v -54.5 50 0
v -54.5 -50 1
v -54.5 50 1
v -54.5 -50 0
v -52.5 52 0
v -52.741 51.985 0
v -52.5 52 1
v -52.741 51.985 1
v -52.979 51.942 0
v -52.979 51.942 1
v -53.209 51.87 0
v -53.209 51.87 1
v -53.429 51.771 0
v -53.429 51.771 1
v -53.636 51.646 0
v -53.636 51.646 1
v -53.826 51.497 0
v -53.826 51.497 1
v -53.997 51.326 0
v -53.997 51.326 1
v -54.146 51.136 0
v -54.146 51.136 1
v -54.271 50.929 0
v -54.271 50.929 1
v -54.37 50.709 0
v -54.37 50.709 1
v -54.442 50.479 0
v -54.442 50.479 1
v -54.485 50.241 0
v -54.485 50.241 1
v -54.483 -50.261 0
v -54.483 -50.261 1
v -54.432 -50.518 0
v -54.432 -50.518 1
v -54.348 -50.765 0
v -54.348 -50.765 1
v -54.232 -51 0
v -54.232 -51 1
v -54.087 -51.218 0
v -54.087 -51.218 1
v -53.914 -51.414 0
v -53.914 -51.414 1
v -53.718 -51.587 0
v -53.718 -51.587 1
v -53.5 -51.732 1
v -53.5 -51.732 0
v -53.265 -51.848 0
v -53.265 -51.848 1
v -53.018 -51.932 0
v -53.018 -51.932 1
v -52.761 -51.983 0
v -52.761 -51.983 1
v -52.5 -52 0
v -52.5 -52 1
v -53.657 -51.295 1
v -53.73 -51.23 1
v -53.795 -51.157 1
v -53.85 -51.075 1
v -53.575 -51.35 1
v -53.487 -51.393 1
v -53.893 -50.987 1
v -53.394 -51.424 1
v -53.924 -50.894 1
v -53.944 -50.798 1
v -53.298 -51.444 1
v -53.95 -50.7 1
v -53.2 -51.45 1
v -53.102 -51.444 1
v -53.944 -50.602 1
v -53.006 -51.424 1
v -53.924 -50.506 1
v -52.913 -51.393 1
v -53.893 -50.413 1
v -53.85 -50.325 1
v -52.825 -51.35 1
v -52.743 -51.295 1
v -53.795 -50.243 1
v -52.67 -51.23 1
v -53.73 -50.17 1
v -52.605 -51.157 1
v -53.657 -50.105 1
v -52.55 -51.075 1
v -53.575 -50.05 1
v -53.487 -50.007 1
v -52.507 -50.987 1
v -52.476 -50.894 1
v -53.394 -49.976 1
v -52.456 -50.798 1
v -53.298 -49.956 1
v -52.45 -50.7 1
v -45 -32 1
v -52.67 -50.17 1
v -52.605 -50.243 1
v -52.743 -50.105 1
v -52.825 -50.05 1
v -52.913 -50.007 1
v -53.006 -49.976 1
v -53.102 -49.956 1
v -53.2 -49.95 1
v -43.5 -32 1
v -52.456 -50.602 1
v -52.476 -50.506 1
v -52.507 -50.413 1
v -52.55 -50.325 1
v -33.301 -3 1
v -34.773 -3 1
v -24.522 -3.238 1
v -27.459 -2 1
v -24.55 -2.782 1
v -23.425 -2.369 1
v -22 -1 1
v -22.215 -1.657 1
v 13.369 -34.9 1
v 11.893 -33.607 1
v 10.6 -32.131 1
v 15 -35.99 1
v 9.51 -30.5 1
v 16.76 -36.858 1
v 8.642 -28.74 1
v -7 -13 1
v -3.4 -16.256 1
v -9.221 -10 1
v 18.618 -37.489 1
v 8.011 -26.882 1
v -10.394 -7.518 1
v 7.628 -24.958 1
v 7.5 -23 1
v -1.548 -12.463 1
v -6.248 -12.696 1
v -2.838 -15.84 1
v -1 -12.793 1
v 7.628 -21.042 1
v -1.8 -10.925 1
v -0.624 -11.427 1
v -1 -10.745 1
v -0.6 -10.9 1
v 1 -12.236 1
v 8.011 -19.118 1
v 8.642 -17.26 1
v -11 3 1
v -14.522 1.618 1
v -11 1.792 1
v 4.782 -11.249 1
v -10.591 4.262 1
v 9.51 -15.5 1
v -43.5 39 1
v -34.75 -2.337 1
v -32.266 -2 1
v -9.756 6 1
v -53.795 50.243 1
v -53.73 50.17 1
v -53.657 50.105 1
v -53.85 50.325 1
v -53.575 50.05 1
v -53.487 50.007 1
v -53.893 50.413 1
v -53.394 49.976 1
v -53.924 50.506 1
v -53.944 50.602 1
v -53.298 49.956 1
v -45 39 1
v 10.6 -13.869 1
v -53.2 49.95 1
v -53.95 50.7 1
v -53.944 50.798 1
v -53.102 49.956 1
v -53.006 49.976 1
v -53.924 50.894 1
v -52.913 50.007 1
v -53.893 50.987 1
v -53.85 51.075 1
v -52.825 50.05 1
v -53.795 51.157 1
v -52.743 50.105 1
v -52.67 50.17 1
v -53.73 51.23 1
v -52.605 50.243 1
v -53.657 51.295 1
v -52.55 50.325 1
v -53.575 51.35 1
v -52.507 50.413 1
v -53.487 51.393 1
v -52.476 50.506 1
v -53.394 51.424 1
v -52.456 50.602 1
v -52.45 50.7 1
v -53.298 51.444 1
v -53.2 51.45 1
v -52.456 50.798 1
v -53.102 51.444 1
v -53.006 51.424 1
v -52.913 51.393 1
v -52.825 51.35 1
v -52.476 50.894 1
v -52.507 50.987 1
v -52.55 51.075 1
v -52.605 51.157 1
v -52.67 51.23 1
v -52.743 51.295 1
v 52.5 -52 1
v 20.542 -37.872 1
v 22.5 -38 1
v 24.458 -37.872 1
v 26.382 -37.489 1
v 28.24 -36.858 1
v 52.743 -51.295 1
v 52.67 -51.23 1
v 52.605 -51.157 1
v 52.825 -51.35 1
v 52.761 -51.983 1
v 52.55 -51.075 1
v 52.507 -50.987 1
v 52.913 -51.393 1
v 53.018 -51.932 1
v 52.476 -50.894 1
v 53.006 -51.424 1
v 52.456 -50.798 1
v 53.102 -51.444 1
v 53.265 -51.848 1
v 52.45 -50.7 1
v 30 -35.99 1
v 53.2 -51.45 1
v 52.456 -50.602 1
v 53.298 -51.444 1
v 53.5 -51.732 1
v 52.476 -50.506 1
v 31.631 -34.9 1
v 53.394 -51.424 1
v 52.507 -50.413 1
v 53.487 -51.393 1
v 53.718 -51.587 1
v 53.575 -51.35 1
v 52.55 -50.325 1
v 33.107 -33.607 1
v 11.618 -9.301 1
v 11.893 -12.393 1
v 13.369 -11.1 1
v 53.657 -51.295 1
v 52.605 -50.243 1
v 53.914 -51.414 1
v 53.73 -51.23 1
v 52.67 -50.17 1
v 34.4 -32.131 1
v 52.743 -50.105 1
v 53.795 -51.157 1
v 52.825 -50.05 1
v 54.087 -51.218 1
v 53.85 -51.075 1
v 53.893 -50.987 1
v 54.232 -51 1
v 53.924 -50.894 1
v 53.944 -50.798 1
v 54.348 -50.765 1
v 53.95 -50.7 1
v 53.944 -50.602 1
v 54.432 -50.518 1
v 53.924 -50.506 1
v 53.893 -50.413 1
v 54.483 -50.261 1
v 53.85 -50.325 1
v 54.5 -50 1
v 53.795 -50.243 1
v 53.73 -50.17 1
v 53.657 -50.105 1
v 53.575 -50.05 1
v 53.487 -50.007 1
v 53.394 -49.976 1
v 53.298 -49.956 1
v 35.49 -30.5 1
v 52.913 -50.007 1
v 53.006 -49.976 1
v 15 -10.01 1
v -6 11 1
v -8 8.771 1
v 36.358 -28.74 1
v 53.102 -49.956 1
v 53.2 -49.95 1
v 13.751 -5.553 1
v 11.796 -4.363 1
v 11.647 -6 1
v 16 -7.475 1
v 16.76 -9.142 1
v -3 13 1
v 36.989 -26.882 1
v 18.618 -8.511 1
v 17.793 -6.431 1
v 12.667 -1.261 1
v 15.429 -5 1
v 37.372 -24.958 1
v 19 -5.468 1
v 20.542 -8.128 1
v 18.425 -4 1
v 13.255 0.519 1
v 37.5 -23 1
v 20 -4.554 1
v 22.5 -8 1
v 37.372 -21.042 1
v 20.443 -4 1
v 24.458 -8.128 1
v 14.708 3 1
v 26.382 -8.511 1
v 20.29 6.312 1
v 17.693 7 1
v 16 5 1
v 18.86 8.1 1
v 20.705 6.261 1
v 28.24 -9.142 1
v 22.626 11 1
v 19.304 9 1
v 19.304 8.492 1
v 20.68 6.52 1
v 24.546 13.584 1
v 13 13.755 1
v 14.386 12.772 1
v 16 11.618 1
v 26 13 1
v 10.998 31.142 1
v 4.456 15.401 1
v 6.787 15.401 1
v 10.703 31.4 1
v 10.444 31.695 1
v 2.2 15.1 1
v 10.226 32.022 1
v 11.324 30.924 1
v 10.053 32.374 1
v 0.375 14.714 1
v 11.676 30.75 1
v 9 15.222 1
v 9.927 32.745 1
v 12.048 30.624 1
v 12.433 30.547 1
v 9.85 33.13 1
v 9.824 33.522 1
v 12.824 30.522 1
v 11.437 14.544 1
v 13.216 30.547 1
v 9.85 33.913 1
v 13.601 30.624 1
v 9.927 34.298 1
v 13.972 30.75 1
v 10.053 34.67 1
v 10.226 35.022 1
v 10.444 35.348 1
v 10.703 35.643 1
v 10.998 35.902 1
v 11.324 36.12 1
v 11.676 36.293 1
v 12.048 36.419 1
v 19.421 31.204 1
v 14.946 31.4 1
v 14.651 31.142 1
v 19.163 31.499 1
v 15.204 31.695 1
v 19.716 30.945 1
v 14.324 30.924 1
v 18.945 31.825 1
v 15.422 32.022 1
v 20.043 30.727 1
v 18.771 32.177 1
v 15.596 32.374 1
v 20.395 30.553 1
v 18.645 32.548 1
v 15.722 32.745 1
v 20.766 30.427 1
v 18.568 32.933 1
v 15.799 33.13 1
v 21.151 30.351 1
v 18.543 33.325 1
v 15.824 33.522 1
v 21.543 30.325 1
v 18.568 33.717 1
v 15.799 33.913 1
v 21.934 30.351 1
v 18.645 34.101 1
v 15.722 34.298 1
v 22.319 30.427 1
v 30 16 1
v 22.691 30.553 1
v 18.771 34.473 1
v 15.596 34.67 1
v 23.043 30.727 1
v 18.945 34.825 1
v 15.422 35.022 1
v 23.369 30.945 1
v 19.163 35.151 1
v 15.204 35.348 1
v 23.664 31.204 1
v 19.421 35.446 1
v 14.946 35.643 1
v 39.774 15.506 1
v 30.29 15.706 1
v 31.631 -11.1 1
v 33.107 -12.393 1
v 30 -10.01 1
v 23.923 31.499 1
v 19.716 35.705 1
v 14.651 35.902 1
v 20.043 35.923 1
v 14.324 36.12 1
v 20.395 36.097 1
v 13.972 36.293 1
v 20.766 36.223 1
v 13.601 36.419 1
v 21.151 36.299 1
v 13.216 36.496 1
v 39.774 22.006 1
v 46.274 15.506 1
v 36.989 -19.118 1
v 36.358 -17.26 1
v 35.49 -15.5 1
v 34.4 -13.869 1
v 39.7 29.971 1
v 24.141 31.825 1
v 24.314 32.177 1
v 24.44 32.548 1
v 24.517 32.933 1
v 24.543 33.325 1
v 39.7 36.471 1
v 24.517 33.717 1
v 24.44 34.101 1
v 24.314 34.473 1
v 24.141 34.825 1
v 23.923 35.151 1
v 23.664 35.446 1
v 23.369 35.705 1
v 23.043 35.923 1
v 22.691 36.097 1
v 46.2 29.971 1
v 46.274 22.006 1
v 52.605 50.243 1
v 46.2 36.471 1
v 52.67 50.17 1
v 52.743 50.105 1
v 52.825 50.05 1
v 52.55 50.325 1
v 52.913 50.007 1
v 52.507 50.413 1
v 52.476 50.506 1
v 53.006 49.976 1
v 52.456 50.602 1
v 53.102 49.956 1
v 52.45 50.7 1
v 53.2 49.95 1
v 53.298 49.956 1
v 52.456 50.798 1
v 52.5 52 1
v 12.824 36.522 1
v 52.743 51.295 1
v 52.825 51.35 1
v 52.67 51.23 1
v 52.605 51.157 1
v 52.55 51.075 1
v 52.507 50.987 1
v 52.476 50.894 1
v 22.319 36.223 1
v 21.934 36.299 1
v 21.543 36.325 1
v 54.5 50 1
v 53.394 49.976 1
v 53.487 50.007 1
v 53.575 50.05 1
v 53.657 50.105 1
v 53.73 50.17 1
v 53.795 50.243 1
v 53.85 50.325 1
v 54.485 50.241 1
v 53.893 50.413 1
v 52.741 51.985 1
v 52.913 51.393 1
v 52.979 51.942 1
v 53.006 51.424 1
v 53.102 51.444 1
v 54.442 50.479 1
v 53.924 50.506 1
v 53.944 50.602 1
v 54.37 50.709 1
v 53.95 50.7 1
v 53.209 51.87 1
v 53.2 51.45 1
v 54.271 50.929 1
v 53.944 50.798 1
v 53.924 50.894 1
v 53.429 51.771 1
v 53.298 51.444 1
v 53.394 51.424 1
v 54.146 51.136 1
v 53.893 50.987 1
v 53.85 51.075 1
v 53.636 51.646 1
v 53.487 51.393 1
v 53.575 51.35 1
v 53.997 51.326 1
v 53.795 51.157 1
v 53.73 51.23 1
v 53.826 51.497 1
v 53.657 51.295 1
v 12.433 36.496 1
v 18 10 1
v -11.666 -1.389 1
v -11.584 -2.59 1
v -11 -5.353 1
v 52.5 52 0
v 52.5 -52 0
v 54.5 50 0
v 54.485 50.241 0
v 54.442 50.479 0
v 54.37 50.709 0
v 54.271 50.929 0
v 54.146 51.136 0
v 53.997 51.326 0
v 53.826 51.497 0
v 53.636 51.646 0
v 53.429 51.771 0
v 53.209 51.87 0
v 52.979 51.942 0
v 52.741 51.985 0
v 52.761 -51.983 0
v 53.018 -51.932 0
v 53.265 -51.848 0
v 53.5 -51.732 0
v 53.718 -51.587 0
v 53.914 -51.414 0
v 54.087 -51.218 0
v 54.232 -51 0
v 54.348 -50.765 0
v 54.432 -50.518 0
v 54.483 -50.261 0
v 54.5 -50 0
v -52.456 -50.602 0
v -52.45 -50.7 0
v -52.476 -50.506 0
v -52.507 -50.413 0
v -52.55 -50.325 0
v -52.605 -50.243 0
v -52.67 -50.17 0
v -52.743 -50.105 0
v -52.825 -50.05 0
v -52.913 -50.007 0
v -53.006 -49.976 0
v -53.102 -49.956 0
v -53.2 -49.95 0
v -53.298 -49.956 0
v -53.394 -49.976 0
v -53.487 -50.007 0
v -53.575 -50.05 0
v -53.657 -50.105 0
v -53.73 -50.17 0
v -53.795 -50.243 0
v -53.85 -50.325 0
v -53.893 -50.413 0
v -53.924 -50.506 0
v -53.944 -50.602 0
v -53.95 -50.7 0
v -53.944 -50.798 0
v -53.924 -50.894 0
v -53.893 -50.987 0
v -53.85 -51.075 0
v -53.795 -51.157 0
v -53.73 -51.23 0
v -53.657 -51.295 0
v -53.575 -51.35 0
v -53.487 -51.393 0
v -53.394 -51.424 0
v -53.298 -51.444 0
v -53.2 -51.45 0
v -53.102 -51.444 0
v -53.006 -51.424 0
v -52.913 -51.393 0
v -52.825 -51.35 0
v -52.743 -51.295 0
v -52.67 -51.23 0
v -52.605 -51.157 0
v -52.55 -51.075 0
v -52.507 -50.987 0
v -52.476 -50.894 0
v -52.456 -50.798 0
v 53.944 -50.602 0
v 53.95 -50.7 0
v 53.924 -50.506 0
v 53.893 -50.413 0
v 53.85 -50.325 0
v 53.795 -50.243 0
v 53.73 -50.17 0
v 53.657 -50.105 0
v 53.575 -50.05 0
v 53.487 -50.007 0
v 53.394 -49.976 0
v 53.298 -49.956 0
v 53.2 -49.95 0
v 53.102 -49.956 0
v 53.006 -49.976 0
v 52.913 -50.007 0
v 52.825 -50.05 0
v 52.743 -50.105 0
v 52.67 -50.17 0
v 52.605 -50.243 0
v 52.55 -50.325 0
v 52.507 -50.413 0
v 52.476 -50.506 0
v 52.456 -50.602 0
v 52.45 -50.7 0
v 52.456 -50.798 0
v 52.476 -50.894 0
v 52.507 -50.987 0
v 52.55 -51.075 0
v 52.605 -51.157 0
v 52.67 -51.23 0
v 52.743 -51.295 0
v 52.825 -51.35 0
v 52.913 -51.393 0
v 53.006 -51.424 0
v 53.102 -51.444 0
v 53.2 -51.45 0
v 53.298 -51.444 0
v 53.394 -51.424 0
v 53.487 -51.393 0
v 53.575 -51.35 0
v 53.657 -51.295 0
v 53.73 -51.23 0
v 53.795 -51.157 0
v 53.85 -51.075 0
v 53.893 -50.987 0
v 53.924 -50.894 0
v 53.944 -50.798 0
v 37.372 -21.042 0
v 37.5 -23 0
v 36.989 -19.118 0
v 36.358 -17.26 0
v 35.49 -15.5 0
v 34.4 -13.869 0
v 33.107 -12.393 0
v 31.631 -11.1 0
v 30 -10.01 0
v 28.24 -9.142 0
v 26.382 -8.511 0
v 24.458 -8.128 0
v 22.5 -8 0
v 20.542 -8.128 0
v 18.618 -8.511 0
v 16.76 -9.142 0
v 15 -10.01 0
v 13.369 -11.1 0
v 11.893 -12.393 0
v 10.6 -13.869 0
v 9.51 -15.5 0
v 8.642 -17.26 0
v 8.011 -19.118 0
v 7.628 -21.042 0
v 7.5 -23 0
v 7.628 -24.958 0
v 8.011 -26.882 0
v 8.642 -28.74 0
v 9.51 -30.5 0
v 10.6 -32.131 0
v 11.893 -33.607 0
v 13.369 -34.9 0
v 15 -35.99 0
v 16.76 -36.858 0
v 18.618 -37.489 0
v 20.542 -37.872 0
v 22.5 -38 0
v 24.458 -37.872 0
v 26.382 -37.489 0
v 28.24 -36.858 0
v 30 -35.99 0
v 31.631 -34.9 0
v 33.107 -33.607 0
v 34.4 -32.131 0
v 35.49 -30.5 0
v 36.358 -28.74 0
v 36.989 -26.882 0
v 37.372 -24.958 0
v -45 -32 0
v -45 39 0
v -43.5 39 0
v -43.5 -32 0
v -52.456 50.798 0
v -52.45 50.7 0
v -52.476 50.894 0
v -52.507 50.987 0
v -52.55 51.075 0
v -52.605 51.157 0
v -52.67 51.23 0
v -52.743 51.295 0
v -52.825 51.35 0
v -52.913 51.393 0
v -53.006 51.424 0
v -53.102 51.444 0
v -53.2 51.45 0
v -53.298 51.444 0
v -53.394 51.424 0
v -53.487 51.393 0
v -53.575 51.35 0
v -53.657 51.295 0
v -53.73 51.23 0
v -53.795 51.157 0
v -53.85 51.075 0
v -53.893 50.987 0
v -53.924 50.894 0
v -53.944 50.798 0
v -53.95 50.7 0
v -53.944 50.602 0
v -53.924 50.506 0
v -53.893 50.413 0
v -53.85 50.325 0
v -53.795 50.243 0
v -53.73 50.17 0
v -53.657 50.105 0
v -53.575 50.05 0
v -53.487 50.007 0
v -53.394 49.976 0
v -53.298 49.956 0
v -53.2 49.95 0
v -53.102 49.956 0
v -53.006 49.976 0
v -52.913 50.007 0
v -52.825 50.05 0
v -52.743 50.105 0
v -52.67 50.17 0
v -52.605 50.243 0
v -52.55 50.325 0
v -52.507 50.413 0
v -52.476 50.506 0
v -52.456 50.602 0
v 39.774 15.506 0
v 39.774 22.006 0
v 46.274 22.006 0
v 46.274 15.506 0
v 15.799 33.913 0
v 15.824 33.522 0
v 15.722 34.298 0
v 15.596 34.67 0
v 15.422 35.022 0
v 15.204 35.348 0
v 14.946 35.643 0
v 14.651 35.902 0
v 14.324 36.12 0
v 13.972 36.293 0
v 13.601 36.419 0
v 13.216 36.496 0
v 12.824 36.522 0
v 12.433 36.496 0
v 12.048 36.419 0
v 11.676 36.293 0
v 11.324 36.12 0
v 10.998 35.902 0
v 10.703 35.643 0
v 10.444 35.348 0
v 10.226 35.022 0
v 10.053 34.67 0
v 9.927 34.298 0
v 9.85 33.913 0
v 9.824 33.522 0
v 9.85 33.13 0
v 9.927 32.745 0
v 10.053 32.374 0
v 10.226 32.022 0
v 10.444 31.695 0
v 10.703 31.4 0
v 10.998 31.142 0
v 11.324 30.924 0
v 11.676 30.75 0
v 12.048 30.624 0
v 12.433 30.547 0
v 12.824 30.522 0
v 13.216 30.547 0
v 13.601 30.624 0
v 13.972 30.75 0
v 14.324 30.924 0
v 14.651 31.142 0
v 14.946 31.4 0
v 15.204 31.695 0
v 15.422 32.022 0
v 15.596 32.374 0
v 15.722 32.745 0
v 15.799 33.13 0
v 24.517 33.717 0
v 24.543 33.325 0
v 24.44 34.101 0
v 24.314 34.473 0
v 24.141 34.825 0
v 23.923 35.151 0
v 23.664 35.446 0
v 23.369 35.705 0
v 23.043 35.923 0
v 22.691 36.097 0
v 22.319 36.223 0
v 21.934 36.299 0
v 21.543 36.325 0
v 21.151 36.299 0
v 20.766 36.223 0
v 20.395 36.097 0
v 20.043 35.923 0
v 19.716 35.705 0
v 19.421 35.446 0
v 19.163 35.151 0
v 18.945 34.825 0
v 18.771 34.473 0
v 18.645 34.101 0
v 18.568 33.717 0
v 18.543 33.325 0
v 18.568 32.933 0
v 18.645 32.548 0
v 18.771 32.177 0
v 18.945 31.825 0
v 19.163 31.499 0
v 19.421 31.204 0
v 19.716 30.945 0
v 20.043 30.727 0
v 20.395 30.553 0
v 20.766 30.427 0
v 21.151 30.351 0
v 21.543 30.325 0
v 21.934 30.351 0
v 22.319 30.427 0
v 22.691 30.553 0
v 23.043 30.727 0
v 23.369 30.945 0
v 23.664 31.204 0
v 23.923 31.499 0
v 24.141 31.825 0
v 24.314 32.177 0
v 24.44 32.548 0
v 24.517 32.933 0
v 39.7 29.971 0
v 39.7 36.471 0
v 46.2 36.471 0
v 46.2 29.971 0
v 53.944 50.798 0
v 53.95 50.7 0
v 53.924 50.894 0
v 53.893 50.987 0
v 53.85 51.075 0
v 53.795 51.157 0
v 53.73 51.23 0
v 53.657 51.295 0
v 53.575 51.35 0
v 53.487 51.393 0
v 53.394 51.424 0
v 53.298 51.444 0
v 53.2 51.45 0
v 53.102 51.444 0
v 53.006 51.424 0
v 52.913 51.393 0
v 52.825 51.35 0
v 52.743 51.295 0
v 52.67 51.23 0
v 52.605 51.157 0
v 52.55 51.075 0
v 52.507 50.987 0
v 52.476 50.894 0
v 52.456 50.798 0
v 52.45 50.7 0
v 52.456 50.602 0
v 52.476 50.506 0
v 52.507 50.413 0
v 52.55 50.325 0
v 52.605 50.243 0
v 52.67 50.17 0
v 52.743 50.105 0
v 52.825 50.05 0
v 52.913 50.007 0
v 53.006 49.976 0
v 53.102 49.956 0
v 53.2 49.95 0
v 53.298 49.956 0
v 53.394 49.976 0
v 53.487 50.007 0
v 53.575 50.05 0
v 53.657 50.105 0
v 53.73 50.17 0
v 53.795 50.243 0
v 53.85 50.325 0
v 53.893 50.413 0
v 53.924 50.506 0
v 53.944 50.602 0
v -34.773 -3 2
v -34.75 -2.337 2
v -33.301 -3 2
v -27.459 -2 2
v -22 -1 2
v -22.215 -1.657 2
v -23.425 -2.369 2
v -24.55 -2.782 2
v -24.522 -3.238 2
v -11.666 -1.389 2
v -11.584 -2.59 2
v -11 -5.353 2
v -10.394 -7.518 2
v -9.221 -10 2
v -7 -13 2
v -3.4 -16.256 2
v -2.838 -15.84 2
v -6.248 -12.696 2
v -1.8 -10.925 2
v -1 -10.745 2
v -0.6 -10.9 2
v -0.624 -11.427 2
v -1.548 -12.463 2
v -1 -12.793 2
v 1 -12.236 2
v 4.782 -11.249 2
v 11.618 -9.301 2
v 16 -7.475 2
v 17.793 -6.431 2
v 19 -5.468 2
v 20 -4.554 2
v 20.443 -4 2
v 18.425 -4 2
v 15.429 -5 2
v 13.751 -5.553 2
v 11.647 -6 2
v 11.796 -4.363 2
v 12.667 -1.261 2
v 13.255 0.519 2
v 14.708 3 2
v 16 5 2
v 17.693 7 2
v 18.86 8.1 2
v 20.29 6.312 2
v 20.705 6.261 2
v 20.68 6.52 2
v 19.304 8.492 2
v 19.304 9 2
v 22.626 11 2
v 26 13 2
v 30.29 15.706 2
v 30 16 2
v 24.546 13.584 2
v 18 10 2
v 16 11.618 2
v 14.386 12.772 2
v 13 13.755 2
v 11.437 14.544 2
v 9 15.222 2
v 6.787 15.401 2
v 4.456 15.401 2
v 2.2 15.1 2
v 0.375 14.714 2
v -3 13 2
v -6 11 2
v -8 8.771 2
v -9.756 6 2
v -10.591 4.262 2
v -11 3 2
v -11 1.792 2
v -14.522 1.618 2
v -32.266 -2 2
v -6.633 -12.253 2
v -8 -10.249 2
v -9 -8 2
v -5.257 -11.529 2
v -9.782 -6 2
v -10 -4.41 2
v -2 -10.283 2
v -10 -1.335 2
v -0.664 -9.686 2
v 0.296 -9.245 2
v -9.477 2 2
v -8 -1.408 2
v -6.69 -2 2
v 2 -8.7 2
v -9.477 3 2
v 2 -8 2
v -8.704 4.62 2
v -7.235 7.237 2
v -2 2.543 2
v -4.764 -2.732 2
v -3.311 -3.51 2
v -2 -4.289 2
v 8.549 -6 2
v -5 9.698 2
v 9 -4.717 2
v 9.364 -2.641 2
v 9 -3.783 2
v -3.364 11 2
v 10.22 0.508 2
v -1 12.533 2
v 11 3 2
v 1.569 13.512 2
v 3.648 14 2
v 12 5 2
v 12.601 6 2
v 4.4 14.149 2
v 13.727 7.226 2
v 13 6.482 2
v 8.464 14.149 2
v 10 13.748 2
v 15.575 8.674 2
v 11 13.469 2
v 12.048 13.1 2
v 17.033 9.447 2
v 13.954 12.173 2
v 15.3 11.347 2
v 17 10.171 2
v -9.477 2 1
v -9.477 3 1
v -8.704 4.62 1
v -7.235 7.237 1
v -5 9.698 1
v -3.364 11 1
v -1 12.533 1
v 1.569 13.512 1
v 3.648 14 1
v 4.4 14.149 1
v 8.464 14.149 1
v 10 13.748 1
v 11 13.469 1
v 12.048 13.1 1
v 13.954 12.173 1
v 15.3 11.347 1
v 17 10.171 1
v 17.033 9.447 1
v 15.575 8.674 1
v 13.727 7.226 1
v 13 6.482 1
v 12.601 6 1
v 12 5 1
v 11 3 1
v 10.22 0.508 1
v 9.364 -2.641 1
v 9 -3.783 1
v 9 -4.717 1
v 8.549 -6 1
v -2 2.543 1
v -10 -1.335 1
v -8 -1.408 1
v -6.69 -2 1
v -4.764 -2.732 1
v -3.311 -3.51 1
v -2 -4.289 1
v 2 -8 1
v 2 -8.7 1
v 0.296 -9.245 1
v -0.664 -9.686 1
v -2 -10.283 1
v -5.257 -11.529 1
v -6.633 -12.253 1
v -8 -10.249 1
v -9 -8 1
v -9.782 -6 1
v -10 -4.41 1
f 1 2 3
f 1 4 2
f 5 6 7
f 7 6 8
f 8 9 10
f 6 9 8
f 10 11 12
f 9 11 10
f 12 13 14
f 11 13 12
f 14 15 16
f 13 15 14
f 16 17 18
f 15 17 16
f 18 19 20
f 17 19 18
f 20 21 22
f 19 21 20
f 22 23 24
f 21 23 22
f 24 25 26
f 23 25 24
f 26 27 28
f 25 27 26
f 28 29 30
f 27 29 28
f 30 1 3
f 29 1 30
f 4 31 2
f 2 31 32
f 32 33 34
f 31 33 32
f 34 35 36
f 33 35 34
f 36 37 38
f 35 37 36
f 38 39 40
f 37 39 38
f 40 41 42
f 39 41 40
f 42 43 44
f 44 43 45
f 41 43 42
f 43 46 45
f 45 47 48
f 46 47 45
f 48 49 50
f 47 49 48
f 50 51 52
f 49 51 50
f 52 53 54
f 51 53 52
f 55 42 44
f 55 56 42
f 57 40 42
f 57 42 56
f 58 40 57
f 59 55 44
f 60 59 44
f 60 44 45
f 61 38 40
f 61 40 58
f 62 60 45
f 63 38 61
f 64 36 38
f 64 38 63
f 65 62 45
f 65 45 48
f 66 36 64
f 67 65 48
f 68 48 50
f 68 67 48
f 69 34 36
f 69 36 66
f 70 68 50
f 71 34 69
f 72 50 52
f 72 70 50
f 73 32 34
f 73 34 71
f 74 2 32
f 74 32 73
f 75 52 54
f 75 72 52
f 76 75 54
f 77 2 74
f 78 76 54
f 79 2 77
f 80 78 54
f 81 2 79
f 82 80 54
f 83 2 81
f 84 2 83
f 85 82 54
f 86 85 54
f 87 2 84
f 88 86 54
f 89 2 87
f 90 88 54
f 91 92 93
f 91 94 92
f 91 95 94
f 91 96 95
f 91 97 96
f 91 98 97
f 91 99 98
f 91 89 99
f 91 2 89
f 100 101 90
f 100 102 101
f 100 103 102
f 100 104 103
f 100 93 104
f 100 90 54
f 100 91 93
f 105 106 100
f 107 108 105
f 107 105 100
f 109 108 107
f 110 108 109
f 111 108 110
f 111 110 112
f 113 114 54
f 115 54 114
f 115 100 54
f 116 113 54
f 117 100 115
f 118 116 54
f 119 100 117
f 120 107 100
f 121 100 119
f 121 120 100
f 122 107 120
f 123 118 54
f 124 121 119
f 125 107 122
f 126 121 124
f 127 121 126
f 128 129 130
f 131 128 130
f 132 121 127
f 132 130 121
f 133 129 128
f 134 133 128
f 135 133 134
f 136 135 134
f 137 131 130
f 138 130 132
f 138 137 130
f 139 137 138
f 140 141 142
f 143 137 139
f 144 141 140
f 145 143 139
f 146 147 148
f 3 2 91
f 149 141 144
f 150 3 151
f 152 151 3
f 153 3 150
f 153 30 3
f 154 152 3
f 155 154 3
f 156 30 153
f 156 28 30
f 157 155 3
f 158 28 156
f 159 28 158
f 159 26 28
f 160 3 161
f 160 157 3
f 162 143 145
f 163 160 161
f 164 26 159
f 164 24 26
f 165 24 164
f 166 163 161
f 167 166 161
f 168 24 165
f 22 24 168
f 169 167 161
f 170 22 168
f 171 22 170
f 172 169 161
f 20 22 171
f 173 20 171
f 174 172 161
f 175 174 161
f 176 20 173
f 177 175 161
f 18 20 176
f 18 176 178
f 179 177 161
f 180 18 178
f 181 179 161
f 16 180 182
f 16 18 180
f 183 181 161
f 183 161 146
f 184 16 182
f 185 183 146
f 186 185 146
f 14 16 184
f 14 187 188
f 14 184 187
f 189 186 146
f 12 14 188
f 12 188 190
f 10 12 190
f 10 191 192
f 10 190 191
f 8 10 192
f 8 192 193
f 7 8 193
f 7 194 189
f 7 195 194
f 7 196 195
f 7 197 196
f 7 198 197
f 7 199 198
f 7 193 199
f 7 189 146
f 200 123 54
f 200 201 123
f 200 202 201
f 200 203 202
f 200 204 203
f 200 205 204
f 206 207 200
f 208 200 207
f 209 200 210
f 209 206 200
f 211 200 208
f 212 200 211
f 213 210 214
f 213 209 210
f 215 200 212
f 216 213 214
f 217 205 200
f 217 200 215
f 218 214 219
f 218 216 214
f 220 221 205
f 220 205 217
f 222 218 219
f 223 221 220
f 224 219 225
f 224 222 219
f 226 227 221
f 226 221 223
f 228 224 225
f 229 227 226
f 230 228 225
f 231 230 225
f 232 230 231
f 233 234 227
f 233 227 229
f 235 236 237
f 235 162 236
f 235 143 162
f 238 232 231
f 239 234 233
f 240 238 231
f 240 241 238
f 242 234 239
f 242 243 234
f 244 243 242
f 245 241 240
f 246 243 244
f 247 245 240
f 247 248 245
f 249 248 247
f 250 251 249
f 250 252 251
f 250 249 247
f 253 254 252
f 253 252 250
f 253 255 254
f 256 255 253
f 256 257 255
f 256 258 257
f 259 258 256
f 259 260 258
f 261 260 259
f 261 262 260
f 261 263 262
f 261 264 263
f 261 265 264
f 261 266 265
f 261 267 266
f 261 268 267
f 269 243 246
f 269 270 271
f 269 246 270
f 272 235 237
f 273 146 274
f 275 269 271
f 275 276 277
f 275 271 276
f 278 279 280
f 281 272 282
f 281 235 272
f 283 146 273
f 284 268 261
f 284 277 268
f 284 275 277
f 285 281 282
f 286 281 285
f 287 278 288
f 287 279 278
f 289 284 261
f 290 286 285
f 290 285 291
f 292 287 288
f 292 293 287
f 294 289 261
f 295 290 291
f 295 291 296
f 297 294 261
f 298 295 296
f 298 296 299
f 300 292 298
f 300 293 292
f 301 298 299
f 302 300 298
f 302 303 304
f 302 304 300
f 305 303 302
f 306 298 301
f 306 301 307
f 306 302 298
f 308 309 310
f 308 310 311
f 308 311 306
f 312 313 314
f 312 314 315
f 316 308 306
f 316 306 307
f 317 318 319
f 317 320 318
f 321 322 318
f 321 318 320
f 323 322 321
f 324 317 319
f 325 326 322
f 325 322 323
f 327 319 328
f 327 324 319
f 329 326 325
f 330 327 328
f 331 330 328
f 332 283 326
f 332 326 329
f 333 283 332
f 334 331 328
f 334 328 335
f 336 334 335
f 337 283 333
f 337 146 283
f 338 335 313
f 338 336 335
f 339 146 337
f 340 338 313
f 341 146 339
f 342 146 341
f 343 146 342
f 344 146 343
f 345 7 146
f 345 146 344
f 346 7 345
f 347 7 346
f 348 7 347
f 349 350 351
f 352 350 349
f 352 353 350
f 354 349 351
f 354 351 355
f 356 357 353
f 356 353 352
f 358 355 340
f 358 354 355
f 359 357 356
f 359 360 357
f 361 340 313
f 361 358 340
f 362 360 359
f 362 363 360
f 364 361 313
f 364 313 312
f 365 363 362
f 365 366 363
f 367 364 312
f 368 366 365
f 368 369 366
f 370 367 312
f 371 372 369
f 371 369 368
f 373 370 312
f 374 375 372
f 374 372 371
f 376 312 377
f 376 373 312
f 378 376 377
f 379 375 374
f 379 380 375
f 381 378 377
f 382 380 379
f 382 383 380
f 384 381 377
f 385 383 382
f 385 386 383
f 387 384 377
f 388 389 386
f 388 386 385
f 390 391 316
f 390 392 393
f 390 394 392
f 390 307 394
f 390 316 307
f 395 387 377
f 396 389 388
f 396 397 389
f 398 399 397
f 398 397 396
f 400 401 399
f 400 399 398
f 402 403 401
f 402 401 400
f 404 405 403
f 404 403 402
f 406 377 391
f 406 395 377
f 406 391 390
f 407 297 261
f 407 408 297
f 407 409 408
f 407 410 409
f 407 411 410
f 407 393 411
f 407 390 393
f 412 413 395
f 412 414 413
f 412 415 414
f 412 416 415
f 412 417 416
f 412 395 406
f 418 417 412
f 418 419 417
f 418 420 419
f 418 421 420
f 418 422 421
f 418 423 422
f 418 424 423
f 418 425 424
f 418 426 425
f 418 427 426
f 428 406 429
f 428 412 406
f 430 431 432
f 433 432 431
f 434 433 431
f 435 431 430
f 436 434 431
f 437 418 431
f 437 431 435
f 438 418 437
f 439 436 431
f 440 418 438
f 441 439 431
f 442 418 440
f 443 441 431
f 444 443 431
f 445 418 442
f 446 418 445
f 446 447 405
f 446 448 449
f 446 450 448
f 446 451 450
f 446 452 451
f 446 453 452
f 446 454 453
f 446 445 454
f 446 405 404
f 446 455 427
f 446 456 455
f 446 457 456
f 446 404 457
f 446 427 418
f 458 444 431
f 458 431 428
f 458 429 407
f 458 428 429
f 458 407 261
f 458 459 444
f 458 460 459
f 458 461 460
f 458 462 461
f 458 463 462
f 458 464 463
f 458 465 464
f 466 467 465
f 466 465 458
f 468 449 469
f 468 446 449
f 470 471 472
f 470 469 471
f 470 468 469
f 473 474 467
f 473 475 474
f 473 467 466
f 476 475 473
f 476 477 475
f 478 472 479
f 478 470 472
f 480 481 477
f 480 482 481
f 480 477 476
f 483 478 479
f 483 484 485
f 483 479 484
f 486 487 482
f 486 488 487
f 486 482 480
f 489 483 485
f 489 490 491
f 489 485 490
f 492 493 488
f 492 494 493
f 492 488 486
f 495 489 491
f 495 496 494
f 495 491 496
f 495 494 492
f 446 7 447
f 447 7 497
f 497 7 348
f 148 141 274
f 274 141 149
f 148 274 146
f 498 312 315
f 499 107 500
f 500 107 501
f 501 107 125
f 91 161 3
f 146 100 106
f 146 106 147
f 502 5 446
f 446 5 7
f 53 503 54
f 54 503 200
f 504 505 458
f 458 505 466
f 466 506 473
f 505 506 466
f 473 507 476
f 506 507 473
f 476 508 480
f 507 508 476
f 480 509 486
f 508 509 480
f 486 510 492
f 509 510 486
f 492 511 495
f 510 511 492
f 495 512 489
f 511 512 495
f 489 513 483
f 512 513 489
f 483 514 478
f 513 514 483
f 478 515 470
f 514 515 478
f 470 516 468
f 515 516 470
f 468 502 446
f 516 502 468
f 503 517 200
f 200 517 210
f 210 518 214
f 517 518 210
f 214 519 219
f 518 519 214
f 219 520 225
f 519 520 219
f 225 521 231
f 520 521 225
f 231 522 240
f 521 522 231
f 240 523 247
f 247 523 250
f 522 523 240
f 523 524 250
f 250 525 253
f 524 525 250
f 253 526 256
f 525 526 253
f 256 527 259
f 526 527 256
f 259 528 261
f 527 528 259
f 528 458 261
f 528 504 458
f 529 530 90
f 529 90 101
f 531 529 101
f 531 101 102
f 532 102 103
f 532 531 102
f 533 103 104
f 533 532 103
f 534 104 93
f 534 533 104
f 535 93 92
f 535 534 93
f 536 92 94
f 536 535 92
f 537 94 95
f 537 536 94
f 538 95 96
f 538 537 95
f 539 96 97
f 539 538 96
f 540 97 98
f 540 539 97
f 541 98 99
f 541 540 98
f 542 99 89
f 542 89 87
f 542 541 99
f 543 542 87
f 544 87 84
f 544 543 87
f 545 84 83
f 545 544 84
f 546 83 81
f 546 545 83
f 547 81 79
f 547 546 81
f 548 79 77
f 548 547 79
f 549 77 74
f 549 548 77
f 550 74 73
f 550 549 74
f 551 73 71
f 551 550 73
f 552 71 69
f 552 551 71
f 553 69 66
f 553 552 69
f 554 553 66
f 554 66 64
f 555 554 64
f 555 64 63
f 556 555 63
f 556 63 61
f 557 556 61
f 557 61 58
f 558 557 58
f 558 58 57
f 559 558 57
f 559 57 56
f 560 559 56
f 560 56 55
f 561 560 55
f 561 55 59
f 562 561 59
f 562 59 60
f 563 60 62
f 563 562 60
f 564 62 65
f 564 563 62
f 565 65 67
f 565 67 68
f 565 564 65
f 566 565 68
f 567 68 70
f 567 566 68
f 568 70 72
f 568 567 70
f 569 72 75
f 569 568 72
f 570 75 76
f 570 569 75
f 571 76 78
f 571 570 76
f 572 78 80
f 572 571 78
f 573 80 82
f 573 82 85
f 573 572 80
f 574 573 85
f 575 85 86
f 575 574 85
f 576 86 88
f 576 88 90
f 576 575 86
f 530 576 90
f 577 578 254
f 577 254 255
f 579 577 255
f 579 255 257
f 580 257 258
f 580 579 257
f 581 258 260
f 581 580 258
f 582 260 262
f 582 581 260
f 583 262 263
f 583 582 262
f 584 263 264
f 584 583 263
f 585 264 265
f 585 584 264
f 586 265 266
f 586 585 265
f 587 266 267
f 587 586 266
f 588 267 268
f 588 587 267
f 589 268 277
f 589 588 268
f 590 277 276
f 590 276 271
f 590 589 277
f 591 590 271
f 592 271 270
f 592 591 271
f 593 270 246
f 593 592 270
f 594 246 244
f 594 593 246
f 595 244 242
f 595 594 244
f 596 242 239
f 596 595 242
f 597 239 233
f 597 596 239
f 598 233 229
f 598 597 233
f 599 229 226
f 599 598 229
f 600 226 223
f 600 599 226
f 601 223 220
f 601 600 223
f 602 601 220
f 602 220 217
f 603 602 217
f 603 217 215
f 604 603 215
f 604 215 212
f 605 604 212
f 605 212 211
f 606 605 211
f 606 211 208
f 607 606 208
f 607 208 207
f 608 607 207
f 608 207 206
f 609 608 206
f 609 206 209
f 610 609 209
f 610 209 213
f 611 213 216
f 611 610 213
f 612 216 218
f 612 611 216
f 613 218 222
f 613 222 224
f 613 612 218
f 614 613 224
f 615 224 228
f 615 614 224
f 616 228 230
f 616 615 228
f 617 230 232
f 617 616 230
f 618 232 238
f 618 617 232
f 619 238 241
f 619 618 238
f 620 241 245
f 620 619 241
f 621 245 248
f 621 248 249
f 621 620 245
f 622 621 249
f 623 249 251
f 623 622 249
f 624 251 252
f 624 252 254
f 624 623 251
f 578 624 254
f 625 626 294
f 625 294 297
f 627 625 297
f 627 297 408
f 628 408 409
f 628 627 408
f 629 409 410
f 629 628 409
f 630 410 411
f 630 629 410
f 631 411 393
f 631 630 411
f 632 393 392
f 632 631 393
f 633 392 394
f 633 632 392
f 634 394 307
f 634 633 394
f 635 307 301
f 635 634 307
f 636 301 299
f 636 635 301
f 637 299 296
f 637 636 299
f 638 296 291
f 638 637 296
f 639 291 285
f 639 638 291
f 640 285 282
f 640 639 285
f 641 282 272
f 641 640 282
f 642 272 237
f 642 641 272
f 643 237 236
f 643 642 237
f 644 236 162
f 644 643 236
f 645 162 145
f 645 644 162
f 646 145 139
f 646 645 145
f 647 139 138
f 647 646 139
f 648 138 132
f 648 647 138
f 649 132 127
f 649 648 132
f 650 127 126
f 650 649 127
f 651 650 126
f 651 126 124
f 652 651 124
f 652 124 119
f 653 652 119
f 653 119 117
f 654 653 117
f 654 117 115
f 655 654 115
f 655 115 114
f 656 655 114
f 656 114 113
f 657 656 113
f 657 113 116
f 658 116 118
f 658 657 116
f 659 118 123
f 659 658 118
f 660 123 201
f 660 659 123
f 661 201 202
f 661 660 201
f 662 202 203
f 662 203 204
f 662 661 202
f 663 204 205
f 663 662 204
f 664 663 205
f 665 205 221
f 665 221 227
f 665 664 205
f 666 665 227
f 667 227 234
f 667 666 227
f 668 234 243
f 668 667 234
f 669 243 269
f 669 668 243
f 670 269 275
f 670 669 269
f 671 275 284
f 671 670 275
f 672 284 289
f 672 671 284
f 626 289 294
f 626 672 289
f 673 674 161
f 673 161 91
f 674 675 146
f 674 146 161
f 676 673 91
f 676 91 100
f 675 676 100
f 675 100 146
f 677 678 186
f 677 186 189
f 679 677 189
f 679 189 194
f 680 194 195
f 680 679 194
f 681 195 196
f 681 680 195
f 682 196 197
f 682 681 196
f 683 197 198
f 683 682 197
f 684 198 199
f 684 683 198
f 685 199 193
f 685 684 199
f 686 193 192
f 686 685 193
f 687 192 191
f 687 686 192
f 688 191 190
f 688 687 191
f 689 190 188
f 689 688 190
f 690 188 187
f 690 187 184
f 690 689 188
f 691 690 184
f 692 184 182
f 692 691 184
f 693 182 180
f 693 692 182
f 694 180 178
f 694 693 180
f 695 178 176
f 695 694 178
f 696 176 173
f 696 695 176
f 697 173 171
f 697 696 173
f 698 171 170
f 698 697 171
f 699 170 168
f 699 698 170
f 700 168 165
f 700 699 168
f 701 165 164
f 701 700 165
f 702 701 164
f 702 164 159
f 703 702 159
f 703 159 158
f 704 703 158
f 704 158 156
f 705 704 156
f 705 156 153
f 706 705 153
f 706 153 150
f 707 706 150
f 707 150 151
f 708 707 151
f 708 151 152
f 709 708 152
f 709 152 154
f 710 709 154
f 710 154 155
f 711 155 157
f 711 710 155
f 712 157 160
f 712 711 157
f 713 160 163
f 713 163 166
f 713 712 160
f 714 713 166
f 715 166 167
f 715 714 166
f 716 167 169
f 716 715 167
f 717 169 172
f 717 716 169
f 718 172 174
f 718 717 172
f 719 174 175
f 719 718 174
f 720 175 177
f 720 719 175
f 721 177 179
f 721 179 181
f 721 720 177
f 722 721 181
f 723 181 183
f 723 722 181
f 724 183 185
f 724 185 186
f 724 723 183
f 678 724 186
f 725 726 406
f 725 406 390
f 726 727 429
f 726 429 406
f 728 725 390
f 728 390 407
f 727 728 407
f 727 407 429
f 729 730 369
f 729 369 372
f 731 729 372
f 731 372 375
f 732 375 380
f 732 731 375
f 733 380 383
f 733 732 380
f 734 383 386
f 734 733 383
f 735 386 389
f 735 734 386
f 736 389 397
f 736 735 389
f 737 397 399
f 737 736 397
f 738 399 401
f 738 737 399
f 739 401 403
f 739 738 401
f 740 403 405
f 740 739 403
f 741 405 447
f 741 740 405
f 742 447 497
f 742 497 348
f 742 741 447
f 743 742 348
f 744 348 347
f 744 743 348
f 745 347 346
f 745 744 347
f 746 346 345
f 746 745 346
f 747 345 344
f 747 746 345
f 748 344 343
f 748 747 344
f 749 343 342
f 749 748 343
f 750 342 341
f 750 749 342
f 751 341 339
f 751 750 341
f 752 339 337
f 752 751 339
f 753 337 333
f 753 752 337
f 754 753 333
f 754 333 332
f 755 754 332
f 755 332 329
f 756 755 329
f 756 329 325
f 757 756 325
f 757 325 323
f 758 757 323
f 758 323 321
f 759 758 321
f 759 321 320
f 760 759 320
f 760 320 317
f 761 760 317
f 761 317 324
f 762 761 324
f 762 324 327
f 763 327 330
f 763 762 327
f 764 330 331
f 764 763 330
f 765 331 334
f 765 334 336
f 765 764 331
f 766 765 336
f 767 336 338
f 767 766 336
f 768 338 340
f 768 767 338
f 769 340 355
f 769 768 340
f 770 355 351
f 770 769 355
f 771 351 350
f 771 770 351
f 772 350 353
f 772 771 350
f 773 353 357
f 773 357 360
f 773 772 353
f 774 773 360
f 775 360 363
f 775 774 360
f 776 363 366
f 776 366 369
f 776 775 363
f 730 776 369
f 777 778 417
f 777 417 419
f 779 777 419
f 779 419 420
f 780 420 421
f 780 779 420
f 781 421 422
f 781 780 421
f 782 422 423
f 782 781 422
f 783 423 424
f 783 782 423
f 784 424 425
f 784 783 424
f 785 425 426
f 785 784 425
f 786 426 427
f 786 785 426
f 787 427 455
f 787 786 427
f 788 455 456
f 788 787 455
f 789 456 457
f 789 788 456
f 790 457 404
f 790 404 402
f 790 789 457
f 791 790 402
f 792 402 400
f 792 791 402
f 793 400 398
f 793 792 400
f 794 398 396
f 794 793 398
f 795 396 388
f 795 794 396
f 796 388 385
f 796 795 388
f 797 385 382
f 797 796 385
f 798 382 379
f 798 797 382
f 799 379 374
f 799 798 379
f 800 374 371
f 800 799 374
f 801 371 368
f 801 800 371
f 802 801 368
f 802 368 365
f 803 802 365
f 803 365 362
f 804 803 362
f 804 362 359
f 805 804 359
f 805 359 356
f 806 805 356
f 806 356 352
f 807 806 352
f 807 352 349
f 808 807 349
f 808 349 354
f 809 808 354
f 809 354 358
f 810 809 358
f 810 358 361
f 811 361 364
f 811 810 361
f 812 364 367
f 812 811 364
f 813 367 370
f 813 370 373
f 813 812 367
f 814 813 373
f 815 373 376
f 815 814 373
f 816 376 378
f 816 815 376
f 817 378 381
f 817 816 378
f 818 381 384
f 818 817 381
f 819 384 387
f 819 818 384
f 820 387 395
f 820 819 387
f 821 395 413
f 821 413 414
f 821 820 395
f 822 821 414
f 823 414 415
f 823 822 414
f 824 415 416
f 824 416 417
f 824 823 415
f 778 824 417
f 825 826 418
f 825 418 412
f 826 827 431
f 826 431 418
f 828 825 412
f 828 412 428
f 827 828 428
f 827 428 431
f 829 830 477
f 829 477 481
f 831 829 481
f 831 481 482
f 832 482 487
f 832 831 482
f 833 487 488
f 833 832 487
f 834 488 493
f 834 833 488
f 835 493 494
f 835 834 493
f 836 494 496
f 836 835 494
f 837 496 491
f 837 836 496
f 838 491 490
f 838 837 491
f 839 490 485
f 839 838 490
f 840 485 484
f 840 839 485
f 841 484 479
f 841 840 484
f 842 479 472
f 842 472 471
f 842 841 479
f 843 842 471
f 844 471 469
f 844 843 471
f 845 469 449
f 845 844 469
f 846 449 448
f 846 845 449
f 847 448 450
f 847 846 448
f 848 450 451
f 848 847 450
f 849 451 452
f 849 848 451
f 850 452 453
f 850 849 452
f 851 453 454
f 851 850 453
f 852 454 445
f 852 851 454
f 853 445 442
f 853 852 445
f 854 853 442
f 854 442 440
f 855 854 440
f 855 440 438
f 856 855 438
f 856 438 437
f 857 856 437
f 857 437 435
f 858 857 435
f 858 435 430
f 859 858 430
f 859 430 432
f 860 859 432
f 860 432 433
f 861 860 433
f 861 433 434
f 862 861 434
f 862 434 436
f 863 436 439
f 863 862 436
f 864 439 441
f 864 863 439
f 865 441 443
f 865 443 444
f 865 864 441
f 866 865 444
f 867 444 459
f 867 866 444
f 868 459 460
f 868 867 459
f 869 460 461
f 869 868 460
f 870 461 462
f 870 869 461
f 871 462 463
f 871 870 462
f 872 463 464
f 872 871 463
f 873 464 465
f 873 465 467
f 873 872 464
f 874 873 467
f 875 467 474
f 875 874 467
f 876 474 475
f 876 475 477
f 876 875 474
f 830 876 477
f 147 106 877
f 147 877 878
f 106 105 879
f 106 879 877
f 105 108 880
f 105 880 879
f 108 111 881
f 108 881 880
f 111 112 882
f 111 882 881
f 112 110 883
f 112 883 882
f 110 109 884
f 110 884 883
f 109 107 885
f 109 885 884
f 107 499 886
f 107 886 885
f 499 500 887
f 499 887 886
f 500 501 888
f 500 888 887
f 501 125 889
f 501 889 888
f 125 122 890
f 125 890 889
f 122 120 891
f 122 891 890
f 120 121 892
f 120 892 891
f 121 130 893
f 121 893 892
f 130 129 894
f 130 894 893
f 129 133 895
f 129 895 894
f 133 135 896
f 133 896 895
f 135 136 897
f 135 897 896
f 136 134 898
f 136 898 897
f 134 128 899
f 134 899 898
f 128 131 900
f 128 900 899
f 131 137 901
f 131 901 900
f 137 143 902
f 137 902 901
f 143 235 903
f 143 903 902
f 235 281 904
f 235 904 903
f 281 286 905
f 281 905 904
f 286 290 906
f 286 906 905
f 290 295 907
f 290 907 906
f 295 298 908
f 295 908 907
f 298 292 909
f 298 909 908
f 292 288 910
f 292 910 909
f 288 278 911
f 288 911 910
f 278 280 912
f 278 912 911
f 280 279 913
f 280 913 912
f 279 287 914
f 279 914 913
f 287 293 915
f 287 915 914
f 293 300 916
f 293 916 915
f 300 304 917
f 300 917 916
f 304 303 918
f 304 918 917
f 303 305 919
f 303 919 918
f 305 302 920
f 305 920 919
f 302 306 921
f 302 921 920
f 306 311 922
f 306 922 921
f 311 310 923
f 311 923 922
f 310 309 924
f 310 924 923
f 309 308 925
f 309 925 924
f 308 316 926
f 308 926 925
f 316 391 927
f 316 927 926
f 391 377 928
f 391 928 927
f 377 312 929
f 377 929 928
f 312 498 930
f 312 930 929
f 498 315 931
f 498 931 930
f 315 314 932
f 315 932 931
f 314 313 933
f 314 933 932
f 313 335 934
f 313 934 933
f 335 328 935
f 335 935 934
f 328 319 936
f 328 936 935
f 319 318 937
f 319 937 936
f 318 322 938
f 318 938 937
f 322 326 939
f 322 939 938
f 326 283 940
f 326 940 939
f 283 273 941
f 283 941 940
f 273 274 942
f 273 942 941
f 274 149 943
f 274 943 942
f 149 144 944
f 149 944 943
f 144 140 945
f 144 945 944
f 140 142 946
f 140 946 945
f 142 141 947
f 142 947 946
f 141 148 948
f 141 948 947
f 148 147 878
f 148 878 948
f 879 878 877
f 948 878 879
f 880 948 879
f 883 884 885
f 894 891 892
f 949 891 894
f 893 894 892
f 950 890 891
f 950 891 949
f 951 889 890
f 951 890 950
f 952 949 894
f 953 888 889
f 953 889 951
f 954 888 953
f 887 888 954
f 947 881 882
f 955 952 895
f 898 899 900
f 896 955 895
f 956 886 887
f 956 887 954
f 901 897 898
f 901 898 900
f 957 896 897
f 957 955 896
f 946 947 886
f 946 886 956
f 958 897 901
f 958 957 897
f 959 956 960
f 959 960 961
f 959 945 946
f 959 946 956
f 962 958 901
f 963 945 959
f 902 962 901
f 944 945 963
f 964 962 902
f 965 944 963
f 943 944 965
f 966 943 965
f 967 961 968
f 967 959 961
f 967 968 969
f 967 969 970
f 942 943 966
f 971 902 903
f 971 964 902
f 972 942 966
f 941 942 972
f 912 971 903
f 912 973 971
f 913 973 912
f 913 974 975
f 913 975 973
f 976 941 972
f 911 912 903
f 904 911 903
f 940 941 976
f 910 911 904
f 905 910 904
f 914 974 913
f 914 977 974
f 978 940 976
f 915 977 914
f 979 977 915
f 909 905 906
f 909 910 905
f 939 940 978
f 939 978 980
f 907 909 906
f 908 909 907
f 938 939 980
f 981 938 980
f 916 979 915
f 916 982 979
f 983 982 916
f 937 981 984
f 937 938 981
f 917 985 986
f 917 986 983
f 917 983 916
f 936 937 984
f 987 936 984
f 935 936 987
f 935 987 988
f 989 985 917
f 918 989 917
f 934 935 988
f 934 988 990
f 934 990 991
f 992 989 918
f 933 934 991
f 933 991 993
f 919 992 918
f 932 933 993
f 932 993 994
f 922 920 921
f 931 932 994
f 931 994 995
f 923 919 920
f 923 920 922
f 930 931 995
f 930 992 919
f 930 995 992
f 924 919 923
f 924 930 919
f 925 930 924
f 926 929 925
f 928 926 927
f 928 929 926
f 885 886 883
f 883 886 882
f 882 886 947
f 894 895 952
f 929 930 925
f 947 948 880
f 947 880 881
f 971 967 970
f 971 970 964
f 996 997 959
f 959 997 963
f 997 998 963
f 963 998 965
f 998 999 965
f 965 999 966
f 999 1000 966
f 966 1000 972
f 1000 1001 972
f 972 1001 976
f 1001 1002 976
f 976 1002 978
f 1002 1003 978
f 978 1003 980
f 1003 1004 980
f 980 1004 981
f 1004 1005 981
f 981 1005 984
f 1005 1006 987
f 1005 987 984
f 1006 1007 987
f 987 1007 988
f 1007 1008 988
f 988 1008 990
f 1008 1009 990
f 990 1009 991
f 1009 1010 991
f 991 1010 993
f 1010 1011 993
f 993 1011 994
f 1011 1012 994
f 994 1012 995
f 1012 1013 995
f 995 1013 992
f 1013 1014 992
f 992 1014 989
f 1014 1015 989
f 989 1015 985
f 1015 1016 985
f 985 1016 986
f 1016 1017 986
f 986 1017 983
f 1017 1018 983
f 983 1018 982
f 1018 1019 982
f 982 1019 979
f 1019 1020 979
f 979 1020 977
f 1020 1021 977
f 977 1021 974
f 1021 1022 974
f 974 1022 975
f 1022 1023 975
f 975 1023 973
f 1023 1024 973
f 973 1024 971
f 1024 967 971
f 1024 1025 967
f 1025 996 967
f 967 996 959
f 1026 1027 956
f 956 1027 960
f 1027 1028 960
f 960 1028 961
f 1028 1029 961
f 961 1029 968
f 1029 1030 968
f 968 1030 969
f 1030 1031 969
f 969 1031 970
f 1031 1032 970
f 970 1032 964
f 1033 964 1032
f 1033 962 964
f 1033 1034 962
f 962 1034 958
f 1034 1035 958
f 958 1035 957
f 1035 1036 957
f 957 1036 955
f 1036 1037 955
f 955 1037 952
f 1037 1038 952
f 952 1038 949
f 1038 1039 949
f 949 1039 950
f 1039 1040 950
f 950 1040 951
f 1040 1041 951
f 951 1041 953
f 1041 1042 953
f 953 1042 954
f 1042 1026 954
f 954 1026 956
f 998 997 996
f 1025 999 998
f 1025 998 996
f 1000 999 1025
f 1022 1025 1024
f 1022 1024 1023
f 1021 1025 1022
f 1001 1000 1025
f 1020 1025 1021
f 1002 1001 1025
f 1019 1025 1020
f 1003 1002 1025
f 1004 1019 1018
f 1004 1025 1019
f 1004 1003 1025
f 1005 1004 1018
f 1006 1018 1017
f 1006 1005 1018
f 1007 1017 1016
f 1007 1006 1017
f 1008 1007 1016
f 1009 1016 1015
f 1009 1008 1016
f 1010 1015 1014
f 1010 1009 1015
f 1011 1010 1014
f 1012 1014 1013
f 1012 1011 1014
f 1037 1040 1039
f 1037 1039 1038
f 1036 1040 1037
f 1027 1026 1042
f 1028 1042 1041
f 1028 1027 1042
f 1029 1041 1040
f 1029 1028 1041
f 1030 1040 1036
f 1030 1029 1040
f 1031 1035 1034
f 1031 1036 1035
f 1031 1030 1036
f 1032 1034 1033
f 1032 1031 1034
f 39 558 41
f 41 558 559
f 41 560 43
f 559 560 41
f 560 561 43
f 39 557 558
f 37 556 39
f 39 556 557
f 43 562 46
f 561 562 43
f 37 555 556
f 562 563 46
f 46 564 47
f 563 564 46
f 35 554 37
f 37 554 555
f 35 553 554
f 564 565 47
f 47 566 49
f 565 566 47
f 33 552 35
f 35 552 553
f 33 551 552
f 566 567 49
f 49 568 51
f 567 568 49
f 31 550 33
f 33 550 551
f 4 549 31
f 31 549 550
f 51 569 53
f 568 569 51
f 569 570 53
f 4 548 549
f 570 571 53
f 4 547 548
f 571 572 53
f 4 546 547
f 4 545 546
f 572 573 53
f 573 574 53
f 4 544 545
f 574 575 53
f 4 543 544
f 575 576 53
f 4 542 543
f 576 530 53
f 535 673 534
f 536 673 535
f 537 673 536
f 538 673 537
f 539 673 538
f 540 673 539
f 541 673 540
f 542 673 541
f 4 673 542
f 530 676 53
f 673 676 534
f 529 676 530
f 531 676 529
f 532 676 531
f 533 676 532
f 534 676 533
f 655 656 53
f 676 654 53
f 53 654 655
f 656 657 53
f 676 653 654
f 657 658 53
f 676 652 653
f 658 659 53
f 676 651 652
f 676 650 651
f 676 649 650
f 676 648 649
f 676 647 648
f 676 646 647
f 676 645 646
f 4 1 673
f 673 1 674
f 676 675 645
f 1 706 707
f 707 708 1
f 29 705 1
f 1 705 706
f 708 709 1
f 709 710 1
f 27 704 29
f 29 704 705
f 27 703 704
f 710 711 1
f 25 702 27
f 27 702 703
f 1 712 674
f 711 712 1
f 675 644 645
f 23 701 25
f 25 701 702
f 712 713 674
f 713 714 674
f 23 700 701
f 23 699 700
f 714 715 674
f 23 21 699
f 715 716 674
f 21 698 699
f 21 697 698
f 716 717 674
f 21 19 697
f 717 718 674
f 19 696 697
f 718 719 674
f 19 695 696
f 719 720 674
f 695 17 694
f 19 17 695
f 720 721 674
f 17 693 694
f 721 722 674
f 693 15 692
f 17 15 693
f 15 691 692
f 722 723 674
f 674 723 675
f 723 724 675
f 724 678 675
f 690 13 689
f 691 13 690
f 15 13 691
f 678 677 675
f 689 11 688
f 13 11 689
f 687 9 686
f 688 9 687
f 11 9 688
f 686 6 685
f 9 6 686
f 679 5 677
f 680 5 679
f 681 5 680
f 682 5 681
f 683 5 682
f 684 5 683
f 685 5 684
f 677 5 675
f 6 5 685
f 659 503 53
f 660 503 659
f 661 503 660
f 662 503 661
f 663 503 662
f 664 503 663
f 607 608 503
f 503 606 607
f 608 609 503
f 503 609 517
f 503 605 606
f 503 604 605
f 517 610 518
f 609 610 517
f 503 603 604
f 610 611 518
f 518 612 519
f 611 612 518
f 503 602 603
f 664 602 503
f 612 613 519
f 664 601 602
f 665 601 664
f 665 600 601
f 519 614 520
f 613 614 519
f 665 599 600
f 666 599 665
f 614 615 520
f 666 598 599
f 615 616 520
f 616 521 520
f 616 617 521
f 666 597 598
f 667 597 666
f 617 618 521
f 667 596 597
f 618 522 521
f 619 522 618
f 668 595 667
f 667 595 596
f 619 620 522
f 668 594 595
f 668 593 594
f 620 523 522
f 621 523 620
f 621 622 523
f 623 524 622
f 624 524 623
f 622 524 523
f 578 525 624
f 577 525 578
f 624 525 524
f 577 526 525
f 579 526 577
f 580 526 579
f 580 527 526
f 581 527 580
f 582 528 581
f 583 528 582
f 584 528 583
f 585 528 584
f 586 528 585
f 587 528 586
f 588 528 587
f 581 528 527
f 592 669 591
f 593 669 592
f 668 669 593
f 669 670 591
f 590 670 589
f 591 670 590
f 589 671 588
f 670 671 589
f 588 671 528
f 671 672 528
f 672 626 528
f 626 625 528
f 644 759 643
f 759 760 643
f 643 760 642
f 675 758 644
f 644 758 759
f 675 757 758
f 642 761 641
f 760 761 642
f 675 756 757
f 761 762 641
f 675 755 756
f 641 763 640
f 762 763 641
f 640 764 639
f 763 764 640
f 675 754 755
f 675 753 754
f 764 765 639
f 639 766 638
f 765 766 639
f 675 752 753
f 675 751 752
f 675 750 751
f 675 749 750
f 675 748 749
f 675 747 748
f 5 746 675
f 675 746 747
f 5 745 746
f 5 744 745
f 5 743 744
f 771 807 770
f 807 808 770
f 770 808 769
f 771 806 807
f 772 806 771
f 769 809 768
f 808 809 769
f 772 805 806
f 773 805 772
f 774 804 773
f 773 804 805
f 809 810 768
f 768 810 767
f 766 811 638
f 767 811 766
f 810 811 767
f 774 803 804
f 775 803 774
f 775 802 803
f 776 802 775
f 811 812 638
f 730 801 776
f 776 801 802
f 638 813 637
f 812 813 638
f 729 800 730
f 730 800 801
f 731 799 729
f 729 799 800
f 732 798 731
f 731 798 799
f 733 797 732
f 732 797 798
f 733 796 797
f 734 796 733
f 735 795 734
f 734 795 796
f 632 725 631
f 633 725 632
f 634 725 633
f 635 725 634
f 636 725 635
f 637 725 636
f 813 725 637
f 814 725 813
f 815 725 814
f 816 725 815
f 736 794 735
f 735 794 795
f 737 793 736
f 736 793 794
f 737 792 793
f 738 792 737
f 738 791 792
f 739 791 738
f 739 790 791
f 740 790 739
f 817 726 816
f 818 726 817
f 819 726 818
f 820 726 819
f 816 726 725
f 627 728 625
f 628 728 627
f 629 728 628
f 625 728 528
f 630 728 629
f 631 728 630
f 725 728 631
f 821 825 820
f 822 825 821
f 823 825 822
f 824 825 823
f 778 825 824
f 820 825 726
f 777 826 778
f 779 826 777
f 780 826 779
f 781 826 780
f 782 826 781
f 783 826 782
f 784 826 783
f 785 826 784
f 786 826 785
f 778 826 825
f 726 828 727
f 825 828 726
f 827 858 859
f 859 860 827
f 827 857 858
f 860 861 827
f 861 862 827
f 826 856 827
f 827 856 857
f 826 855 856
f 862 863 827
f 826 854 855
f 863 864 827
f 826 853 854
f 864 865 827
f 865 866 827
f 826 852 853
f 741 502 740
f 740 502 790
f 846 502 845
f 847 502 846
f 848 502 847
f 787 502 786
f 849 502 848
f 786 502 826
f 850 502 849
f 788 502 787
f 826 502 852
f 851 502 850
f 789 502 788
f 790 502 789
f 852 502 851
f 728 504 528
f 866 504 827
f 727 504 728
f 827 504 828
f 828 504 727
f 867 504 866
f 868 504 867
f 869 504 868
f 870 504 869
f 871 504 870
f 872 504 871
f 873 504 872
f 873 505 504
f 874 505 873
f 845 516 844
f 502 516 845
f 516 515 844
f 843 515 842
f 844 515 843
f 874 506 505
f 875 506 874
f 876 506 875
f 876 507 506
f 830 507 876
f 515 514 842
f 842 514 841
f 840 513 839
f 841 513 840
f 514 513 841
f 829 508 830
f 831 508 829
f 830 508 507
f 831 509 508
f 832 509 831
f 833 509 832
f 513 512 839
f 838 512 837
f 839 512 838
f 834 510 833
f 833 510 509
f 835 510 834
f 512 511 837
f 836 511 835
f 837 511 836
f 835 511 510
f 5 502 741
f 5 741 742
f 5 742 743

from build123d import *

# Parameters (mm, degrees)
SKETCH_R     = 0.75
SKETCH_R_2   = 15
SKETCH_R_3   = 3
SKETCH_W     = 1.5
SKETCH_H     = 71
SKETCH_W_2   = 6.5
SKETCH_H_2   = 6.5
PAD_DEPTH    = 1
PAD001_DEPTH = 2


with BuildPart() as part:
    # Sketch → Pad (new body)
    with BuildSketch(Plane.XY):
        with BuildLine():
            Line((-54.5, 50), (-54.5, -50))
            ThreePointArc((-54.5, -50), (-53.914214, -51.414214), (-52.5, -52))
            Line((-52.5, -52), (52.5, -52))
            ThreePointArc((52.5, -52), (53.914214, -51.414214), (54.5, -50))
            Line((54.5, -50), (54.5, 50))
            ThreePointArc((54.5, 50), (53.914214, 51.414214), (52.5, 52))
            Line((52.5, 52), (-52.5, 52))
            ThreePointArc((-52.5, 52), (-53.914214, 51.414214), (-54.5, 50))
        make_face()
        with Locations((-53.2, 50.7)):
            Circle(SKETCH_R, mode=Mode.SUBTRACT)
        with Locations((-53.2, -50.7)):
            Circle(SKETCH_R, mode=Mode.SUBTRACT)
        with Locations((53.2, -50.7)):
            Circle(SKETCH_R, mode=Mode.SUBTRACT)
        with Locations((53.2, 50.7)):
            Circle(SKETCH_R, mode=Mode.SUBTRACT)
        with Locations((22.5, -23)):
            Circle(SKETCH_R_2, mode=Mode.SUBTRACT)
        with Locations((12.824393, 33.521584)):
            Circle(SKETCH_R_3, mode=Mode.SUBTRACT)
        with Locations((21.542665, 33.324928)):
            Circle(SKETCH_R_3, mode=Mode.SUBTRACT)
        with Locations((-44.25, 3.5)):
            Rectangle(SKETCH_W, SKETCH_H, mode=Mode.SUBTRACT)
        with Locations((43.024296, 18.756004)):
            Rectangle(SKETCH_W_2, SKETCH_H_2, mode=Mode.SUBTRACT)
        with Locations((42.950272, 33.221375)):
            Rectangle(SKETCH_W_2, SKETCH_H_2, mode=Mode.SUBTRACT)
    extrude(amount=PAD_DEPTH)

    # Sketch002 → Pad001 (join)
    with BuildSketch(Plane.XY):
        Polygon((-34.773251, -3), (-34.749931, -2.337135), (-32.266365, -2), (-14.521888, 1.618207), (-11, 1.792153), (-11, 3), (-10.590711, 4.262184), (-9.755771, 6), (-8, 8.77106), (-6, 11), (-3, 13), (0.374559, 14.713974), (2.2, 15.1), (4.455713, 15.401265), (6.786591, 15.401265), (9, 15.22211), (11.437481, 14.54372), (13, 13.75457), (14.38553, 12.771906), (16, 11.618343), (18, 10), (24.546326, 13.584305), (30, 16), (30.289629, 15.70633), (26, 13), (22.625736, 11), (19.304169, 9), (19.304169, 8.492273), (20.679504, 6.520093), (20.705454, 6.260595), (20.290258, 6.312495), (18.85984, 8.1), (17.692602, 7), (16, 5), (14.708381, 3), (13.255195, 0.51859), (12.667271, -1.261222), (11.79619, -4.363118), (11.64747, -6), (13.75081, -5.552886), (15.429233, -5), (18.4249, -4), (20.443256, -4), (20, -4.55433), (19, -5.467902), (17.793219, -6.430947), (16, -7.474626), (11.618122, -9.301063), (4.782028, -11.249263), (1, -12.236397), (-1, -12.793026), (-1.547702, -12.462527), (-0.623532, -11.427116), (-0.6, -10.9), (-1, -10.745091), (-1.8, -10.925249), (-6.248158, -12.696156), (-2.838245, -15.840145), (-3.4, -16.256224), (-7, -13), (-9.221251, -10), (-10.394289, -7.518017), (-11, -5.353436), (-11.584344, -2.590018), (-11.665963, -1.389038), (-24.521864, -3.237807), (-24.550348, -2.782077), (-23.425266, -2.369072), (-22.214733, -1.656995), (-22, -1), (-27.459188, -2), (-33.301292, -3), align=None)
        Polygon((-10, -1.335219), (-8, -1.407553), (-6.690357, -2), (-4.764454, -2.731958), (-3.311275, -3.510448), (-2, -4.288938), (2, -8), (2, -8.466834), (2, -8.70038), (0.29573, -9.245323), (-0.664407, -9.686468), (-2, -10.28331), (-5.257498, -11.528893), (-6.633207, -12.253425), (-8, -10.248709), (-9, -8), (-9.782376, -6), (-10, -4.410032), align=None, mode=Mode.SUBTRACT)
        Polygon((-9.476856, 2), (-9.476856, 3), (-8.70385, 4.620335), (-7.235143, 7.237054), (-5, 9.697773), (-3.364116, 11), (-1, 12.533089), (1.568817, 13.51206), (3.648072, 14), (4.4, 14.148623), (7.4, 14.148623), (8.464255, 14.148623), (10, 13.747993), (11, 13.469228), (12.048037, 13.1), (13.953865, 12.172708), (15.3, 11.346745), (17, 10.170516), (17.033005, 9.447416), (15.575068, 8.67393), (13.726978, 7.225599), (13, 6.481995), (12.600948, 6), (12, 5), (11, 3), (10.22023, 0.508264), (9.364268, -2.641001), (9, -3.782789), (9, -4.716979), (8.549188, -6), (-2, 2.543029), align=None, mode=Mode.SUBTRACT)
    extrude(amount=PAD001_DEPTH)


solid = part.part
